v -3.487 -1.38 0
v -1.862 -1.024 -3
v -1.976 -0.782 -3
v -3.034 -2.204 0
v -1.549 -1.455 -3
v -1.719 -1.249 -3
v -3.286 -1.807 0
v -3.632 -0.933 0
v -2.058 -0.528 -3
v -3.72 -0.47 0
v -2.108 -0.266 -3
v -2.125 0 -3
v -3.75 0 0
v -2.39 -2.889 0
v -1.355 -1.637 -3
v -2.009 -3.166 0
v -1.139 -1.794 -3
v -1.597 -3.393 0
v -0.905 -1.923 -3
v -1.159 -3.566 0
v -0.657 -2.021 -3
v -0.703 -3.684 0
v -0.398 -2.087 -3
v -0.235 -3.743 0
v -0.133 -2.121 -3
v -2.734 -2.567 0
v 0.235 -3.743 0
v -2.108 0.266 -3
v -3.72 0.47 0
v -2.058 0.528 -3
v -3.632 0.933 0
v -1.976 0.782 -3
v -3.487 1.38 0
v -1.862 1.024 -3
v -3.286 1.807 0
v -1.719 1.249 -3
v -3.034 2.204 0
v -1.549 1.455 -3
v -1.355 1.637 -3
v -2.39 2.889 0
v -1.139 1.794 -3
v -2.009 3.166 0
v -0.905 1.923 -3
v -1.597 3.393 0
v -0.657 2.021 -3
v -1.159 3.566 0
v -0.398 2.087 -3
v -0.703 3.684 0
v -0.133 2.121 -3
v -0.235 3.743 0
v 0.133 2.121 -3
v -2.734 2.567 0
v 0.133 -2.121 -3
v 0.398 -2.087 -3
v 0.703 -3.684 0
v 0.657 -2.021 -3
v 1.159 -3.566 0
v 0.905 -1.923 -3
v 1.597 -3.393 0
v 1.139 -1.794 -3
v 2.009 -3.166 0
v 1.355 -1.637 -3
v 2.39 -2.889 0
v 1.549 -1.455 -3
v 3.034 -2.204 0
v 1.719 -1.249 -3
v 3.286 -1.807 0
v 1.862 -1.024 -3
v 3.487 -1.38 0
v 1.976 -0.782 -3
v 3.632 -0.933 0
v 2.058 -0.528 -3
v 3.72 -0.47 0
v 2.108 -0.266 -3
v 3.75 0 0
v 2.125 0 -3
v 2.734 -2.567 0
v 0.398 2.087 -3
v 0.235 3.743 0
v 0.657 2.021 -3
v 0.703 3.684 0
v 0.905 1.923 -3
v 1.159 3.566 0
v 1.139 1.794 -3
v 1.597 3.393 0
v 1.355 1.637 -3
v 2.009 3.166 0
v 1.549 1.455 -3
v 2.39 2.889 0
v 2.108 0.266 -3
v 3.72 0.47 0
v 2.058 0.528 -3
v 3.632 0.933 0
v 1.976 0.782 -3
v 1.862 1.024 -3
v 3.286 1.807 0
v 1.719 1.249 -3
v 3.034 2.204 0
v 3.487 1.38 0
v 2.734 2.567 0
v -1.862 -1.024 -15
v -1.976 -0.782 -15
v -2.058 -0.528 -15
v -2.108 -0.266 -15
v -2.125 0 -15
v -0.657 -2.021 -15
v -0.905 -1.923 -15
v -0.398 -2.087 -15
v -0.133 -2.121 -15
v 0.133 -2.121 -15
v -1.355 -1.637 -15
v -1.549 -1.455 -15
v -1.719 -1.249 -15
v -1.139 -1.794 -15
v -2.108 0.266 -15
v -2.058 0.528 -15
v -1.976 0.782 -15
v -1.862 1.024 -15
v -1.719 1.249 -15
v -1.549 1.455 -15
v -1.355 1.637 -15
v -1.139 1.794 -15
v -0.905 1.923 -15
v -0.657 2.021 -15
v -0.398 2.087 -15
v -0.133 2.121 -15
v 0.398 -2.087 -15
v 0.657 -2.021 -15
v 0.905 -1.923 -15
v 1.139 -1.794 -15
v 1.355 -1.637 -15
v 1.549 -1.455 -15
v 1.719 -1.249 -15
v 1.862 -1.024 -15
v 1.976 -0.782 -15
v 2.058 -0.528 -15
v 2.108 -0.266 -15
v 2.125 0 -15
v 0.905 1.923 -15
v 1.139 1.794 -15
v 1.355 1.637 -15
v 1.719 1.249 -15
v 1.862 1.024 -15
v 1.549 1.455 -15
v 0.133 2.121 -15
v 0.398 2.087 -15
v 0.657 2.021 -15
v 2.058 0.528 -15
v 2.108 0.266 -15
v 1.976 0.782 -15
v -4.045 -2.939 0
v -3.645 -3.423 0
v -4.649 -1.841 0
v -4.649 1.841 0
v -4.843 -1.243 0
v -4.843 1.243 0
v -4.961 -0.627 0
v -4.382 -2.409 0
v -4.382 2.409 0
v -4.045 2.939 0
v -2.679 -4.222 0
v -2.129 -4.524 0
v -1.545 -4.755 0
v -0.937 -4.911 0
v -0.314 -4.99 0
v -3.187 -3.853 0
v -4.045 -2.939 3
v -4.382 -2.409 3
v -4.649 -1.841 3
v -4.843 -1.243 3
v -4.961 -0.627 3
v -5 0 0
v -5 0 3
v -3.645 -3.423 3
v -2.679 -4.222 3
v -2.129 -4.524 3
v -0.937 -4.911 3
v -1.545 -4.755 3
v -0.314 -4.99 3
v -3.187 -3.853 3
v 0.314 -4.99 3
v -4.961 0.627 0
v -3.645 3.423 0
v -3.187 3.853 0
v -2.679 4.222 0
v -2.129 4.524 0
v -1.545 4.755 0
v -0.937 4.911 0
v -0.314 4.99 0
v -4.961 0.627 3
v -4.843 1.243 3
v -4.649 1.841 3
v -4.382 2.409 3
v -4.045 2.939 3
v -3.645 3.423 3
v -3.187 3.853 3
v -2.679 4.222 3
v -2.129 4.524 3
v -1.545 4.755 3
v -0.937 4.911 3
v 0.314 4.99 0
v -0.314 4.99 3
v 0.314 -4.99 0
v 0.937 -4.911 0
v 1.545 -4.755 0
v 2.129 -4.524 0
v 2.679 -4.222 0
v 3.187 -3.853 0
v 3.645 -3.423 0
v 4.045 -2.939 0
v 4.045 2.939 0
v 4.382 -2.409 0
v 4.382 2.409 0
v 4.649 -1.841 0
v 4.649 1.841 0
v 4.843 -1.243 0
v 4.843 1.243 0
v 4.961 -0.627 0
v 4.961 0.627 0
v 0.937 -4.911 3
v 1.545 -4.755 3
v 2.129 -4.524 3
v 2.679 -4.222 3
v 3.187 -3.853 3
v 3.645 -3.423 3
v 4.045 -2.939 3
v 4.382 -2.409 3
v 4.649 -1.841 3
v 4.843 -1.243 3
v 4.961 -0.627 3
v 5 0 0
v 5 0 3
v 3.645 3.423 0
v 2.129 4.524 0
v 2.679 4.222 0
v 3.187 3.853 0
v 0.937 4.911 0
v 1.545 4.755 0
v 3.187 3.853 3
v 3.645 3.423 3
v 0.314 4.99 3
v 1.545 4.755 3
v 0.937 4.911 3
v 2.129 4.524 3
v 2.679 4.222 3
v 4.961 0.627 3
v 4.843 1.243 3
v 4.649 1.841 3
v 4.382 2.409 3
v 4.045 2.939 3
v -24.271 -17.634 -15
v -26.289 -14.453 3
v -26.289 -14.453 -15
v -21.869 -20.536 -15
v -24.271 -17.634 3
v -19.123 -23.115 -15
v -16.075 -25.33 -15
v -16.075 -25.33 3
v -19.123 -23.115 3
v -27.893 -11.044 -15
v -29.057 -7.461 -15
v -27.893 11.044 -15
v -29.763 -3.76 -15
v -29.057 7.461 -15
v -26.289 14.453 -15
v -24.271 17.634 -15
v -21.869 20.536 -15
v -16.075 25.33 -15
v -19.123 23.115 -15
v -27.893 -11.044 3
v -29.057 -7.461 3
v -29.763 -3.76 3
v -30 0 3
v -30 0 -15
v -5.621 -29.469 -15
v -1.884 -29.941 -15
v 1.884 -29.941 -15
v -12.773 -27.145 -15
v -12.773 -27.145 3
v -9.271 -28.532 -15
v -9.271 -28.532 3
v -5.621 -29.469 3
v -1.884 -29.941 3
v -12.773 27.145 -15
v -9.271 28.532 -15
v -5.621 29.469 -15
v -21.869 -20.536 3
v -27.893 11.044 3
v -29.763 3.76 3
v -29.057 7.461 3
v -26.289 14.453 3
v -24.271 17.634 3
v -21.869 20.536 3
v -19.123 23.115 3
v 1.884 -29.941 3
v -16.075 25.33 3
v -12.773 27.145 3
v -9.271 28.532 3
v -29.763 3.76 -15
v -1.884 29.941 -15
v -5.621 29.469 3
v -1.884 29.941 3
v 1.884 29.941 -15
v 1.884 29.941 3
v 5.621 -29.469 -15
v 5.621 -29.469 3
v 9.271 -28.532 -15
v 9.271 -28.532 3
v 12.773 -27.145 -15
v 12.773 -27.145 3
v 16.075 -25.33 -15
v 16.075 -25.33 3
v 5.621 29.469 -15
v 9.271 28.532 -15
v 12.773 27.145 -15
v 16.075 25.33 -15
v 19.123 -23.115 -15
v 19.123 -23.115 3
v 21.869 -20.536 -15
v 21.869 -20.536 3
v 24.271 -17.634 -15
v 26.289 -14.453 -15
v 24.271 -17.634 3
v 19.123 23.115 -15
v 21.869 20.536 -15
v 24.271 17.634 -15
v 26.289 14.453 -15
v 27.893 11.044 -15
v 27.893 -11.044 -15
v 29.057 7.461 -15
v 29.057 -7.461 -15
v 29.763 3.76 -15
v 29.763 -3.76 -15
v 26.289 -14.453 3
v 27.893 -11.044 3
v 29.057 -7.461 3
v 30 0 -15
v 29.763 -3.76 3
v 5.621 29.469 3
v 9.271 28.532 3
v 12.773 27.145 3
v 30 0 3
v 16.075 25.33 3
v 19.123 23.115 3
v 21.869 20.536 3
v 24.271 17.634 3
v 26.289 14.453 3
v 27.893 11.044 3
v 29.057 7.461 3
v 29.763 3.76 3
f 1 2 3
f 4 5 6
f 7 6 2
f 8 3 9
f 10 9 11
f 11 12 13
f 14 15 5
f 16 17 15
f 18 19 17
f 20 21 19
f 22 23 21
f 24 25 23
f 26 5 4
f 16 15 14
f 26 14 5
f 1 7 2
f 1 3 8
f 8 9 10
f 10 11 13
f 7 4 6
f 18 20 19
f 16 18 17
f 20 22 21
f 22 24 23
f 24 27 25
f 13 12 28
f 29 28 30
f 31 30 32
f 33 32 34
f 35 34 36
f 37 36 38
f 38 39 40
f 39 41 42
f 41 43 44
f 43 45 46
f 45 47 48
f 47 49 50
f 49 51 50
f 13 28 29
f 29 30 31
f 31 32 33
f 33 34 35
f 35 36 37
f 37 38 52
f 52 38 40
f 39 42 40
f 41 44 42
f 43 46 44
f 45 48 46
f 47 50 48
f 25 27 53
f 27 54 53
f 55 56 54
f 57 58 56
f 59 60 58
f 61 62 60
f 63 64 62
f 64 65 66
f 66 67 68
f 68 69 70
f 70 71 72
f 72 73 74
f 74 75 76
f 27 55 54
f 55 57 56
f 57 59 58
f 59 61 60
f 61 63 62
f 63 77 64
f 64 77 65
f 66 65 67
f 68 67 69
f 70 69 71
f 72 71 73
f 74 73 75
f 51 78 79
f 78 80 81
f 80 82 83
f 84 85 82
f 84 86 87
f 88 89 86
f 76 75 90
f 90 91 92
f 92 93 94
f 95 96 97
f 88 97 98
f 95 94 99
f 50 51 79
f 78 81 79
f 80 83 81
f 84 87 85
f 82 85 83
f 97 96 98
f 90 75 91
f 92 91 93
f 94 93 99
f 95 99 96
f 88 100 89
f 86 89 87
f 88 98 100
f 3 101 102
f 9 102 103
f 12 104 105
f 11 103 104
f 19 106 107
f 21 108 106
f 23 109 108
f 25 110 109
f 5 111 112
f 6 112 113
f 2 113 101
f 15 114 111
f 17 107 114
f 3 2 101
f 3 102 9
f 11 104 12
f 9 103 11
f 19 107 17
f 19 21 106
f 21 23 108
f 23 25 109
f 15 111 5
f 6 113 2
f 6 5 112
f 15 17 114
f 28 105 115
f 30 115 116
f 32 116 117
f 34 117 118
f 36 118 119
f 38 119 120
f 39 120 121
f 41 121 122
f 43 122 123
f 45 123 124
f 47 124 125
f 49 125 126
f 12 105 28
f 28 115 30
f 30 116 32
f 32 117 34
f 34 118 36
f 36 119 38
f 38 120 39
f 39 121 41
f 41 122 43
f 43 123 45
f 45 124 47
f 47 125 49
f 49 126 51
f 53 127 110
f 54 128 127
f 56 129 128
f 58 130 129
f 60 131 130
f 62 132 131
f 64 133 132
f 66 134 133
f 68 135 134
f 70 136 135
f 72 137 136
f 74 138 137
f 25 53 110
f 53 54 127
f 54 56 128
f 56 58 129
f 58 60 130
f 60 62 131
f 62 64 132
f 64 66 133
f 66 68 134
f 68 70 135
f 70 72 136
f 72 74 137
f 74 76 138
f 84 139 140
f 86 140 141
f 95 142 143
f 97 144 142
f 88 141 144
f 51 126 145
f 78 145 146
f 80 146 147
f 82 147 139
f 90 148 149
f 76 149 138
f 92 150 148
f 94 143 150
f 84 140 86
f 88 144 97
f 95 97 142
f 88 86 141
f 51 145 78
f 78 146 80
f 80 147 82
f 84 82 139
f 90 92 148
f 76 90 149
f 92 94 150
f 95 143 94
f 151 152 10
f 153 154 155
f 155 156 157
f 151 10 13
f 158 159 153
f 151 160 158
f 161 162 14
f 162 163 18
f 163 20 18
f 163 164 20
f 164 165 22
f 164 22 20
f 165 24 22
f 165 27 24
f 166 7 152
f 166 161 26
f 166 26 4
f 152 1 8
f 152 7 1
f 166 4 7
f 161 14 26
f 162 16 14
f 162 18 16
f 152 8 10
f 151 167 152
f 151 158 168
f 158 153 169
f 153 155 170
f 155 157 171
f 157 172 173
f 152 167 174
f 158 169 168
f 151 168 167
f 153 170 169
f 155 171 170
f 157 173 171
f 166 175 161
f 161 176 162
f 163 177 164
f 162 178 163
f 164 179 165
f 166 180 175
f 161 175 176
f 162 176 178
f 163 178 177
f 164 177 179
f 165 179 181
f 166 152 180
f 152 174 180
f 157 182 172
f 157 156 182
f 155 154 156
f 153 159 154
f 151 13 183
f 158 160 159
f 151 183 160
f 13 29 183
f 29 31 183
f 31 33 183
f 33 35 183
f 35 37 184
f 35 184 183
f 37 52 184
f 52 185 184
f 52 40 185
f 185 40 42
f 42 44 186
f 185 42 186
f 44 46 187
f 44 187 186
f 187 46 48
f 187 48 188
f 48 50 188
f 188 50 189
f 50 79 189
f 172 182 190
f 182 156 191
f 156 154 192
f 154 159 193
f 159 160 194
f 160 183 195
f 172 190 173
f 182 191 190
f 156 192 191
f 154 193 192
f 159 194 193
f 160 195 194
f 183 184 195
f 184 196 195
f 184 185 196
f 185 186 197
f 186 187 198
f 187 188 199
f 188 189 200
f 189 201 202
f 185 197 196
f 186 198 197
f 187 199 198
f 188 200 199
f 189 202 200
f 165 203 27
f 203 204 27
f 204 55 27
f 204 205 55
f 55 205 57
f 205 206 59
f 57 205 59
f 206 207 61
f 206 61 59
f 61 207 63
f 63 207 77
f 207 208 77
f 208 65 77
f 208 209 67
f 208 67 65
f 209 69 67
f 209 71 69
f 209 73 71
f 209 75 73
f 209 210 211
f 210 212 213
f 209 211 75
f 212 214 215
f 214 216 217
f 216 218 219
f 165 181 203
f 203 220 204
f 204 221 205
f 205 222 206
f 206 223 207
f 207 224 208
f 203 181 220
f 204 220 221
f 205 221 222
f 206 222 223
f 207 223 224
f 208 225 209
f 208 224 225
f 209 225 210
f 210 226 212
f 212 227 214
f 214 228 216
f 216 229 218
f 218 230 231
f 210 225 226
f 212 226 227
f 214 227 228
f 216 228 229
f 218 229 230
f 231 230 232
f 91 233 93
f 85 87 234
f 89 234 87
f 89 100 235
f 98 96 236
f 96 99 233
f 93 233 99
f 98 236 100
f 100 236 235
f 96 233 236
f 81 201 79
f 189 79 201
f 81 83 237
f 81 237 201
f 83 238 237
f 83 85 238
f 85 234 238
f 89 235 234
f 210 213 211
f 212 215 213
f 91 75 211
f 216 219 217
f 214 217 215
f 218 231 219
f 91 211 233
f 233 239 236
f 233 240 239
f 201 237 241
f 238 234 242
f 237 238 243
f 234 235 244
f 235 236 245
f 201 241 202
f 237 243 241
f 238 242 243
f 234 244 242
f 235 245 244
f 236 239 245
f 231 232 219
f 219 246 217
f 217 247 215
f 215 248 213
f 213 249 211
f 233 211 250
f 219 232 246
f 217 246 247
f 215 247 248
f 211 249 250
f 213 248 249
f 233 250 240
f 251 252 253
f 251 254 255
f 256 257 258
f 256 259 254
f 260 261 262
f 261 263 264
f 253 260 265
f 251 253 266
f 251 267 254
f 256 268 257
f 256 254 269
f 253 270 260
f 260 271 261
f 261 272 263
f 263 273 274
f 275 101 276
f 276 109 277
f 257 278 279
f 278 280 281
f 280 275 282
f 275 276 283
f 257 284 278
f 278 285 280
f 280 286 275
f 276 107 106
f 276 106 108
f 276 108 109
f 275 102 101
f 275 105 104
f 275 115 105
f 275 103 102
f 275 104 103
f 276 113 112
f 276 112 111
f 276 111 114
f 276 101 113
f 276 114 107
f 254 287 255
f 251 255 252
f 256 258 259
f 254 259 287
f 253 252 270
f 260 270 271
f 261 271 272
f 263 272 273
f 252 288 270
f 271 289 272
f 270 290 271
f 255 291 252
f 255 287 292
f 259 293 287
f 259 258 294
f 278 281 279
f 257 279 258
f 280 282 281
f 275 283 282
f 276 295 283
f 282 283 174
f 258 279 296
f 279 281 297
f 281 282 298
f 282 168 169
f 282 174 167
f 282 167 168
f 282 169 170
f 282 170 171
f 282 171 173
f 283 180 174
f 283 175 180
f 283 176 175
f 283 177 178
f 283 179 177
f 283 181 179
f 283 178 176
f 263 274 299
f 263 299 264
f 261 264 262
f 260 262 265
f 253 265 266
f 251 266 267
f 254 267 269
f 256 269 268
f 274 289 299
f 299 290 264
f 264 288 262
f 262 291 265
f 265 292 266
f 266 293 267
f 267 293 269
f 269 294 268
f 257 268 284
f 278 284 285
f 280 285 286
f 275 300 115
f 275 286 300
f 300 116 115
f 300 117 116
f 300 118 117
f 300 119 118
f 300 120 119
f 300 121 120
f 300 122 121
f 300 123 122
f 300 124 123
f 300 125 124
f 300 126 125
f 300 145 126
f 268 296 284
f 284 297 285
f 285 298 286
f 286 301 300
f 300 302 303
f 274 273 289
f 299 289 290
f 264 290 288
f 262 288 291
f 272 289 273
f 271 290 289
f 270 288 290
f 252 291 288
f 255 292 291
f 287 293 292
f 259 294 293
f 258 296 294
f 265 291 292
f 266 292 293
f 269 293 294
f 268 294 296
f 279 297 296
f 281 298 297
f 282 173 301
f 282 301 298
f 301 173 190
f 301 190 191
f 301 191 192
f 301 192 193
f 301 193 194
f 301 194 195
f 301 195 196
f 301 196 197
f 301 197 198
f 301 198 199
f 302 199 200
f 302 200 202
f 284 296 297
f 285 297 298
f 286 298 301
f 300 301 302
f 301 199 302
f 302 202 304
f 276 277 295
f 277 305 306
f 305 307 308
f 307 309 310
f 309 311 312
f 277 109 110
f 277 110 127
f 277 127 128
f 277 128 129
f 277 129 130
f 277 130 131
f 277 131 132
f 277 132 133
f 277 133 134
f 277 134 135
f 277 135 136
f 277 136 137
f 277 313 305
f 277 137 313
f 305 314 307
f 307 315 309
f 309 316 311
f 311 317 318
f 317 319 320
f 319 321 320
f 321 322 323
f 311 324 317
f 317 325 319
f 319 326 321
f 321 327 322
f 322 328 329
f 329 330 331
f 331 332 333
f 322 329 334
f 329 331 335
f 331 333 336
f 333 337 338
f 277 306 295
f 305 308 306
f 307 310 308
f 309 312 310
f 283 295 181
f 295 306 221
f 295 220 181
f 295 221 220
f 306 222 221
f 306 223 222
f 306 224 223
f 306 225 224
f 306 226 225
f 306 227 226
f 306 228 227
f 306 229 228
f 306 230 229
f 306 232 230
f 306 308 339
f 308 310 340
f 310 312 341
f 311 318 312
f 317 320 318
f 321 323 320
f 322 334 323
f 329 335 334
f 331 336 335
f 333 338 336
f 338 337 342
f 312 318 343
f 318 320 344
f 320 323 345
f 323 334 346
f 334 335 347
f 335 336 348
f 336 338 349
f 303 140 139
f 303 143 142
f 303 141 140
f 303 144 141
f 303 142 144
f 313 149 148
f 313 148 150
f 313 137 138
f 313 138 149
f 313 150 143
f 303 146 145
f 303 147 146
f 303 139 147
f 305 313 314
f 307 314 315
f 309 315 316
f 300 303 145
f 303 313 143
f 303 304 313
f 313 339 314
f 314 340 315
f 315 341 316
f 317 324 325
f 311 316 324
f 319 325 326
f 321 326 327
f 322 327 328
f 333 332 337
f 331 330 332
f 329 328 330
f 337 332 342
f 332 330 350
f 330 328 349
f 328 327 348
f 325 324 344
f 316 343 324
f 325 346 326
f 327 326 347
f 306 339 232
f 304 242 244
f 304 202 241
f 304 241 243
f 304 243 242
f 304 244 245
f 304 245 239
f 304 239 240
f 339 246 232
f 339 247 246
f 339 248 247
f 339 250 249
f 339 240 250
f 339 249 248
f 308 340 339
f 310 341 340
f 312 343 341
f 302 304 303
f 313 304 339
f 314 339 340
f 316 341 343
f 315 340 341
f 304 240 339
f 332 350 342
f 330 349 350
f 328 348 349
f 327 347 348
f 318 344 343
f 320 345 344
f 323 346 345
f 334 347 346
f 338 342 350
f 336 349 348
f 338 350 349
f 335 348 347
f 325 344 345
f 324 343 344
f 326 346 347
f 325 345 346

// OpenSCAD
$fn = 50;

difference() {
	union() {
		translate(v = [0, 0, -15.0]) {
			cylinder(h = 18, r = 30.0);
		}
	}
	union() {
		translate(v = [0, 0, 0]) {
			rotate(a = [0, 0, 0]) {
				difference() {
					union() {
						translate(v = [0, 0, -18.0]) {
							cylinder(h = 18, r = 2.0);
						}
						translate(v = [0, 0, -3]) {
							cylinder(h = 3, r1 = 2.125, r2 = 3.75);
						}
						translate(v = [0, 0, -18.0]) {
							cylinder(h = 18, r = 2.125);
						}
						translate(v = [0, 0, -18.0]) {
							cylinder(h = 18, r = 2.0);
						}
					}
					union();
				}
			}
		}
		#cylinder(h = 3, r = 5.0);
	}
}
